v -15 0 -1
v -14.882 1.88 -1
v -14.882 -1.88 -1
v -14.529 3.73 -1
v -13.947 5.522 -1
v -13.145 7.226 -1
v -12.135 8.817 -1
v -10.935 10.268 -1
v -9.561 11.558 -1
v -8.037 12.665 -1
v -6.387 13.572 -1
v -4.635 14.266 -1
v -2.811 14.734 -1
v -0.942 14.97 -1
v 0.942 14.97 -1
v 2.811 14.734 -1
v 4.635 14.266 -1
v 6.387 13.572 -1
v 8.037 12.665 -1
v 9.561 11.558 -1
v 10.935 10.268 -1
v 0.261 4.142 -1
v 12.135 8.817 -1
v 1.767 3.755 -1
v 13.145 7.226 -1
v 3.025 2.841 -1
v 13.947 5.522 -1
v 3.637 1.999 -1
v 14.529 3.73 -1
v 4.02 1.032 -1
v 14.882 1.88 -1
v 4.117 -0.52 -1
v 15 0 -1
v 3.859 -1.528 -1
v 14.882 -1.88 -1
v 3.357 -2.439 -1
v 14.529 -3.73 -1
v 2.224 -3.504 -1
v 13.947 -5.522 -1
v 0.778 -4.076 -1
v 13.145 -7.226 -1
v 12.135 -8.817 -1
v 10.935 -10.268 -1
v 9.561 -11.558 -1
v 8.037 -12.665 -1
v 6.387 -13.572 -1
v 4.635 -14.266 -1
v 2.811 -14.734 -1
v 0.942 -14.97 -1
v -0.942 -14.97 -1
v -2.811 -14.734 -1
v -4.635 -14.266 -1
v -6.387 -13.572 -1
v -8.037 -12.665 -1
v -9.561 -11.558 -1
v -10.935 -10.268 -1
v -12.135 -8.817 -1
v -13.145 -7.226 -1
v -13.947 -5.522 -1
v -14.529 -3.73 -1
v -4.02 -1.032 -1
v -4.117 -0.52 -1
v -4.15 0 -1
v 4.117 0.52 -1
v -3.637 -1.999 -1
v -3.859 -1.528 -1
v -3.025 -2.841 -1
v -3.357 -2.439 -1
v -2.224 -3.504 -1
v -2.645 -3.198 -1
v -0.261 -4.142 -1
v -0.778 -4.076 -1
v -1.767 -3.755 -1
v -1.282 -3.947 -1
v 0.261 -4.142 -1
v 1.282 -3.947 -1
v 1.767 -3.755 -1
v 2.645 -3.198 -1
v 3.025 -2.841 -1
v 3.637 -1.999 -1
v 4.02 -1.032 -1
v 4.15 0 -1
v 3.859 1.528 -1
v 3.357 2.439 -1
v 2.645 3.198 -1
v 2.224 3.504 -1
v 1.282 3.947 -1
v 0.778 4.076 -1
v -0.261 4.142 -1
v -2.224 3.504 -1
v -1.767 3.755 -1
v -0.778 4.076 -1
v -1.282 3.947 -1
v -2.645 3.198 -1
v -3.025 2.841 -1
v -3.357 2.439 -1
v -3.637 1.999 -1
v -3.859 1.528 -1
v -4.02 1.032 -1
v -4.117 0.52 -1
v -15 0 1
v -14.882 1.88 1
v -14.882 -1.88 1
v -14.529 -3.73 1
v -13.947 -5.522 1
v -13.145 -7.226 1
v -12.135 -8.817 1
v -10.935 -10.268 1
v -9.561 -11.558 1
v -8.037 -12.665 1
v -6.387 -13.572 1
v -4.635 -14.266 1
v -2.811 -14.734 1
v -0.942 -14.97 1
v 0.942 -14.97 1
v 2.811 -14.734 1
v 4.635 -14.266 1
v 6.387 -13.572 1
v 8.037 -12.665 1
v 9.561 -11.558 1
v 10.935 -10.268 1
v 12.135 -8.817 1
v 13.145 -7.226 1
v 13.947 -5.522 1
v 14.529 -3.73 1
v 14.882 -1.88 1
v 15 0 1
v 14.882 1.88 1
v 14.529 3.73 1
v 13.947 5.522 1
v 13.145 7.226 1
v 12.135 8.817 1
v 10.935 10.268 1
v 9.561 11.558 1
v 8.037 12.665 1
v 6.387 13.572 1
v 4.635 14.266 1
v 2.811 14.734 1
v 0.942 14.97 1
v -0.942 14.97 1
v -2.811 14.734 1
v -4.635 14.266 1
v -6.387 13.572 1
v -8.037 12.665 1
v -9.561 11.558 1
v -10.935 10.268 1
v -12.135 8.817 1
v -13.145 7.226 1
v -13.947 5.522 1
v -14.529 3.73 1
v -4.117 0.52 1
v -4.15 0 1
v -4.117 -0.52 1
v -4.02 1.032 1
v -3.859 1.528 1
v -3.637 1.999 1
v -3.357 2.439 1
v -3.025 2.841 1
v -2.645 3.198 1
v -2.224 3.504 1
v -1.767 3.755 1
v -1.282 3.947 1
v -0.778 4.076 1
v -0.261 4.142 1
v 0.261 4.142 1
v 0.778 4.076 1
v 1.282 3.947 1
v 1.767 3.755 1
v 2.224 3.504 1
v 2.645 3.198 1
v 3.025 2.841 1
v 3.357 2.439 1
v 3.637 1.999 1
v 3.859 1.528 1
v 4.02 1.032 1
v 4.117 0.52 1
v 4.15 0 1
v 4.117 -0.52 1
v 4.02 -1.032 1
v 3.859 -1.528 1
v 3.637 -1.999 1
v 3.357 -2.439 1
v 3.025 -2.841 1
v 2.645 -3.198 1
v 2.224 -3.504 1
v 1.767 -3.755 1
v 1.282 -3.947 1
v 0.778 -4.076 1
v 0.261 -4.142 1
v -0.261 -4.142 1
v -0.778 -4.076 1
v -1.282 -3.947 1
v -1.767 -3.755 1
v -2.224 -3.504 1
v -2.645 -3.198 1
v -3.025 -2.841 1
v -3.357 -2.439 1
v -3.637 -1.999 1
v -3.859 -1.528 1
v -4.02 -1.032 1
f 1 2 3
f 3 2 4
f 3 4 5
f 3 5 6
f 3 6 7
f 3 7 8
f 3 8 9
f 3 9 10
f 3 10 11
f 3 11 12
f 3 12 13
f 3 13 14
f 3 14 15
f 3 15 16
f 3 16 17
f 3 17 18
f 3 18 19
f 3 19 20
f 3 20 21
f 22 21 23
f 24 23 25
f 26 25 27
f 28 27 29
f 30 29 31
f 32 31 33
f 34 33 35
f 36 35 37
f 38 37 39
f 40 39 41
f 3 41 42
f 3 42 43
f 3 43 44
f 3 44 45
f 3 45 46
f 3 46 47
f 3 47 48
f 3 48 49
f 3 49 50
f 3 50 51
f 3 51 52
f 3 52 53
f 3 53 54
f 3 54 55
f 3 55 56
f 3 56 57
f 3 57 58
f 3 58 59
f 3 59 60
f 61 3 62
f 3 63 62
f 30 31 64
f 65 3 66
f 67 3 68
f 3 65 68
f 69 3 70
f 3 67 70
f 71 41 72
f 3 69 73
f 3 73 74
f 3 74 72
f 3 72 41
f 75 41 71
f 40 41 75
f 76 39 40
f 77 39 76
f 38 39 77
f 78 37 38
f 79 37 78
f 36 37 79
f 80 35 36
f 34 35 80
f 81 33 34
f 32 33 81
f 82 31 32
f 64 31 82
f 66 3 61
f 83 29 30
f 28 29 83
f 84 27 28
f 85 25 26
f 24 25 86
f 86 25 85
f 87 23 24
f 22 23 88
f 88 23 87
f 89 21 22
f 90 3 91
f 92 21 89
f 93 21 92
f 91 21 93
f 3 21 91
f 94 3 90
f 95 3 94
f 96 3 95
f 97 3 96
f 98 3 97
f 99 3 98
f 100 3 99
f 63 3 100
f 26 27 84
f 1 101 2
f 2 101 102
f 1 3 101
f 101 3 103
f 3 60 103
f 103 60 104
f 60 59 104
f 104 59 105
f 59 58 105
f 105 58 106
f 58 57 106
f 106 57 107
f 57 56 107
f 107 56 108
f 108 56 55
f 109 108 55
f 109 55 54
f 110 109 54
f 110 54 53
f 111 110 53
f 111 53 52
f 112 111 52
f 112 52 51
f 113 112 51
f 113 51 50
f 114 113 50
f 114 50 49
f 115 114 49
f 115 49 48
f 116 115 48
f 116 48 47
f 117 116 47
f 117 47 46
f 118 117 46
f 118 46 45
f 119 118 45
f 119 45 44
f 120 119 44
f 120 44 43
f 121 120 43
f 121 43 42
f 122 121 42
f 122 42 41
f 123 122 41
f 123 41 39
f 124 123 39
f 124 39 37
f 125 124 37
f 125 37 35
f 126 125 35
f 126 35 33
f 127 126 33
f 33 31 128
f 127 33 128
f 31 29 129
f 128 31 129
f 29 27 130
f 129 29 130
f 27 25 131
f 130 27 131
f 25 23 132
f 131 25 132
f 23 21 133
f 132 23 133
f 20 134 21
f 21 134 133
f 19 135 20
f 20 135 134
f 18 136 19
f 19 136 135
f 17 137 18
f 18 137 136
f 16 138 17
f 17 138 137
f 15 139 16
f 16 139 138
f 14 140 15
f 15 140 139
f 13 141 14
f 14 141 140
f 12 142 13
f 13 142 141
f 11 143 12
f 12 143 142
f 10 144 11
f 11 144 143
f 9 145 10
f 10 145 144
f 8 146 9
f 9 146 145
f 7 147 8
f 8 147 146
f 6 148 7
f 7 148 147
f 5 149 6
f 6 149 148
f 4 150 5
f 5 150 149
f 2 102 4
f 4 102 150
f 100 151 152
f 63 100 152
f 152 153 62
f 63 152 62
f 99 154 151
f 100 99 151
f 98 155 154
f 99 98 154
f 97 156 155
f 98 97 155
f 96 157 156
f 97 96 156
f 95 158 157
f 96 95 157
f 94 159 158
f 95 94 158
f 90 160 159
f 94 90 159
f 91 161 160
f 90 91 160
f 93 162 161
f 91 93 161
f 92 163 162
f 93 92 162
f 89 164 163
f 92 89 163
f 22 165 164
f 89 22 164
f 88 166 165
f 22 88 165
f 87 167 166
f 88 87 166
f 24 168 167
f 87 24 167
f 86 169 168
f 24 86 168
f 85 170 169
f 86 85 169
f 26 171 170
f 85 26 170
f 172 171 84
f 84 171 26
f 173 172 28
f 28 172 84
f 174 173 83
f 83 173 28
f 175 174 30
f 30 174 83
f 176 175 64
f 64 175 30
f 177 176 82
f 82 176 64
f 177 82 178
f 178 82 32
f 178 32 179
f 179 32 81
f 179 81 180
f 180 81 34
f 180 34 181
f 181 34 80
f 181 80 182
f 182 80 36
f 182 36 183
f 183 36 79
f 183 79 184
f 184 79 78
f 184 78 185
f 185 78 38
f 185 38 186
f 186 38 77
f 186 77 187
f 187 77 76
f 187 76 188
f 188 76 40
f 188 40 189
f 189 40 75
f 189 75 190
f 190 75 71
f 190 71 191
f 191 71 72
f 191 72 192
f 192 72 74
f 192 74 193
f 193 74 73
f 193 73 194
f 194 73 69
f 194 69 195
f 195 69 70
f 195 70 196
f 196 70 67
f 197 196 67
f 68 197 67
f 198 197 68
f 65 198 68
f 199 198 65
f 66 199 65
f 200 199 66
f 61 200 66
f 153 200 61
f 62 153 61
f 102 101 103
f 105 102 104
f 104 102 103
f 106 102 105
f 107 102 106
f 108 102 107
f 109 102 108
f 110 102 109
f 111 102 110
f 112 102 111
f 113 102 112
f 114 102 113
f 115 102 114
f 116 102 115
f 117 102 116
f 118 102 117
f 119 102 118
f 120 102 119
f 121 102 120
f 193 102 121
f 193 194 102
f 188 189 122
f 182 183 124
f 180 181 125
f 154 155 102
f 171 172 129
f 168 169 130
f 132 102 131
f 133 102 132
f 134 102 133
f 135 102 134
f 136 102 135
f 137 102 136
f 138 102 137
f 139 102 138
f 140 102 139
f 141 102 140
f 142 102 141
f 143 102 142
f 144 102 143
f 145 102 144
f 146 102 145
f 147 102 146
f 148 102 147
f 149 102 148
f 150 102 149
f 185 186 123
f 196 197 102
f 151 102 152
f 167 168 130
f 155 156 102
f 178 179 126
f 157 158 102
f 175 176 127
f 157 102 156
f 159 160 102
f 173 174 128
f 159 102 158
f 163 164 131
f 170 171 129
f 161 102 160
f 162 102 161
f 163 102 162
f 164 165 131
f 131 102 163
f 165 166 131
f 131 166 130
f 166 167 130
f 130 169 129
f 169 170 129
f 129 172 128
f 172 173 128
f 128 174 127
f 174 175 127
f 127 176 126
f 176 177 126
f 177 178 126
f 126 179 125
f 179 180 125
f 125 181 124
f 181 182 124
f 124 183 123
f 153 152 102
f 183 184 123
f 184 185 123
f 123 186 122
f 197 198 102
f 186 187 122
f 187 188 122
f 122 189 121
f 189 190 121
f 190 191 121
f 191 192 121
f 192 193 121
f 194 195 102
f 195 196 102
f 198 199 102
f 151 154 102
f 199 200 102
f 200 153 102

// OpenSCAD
//-- M8x30 Washer for the Prusa-Mendel 3D Printer
//-- (c) 2011 Juan Gonzalez-Gomez (Obijuan)
//-- GPL License

//-- Internal diameter
id=8.3;

//-- outer diameter
od=30;

//-- Thickness
th=2;

difference() {
  cylinder(r=od/2, h=th,$fn=50,center=true);
  cylinder(r=id/2, h=20, $fn=50,center=true);
}
